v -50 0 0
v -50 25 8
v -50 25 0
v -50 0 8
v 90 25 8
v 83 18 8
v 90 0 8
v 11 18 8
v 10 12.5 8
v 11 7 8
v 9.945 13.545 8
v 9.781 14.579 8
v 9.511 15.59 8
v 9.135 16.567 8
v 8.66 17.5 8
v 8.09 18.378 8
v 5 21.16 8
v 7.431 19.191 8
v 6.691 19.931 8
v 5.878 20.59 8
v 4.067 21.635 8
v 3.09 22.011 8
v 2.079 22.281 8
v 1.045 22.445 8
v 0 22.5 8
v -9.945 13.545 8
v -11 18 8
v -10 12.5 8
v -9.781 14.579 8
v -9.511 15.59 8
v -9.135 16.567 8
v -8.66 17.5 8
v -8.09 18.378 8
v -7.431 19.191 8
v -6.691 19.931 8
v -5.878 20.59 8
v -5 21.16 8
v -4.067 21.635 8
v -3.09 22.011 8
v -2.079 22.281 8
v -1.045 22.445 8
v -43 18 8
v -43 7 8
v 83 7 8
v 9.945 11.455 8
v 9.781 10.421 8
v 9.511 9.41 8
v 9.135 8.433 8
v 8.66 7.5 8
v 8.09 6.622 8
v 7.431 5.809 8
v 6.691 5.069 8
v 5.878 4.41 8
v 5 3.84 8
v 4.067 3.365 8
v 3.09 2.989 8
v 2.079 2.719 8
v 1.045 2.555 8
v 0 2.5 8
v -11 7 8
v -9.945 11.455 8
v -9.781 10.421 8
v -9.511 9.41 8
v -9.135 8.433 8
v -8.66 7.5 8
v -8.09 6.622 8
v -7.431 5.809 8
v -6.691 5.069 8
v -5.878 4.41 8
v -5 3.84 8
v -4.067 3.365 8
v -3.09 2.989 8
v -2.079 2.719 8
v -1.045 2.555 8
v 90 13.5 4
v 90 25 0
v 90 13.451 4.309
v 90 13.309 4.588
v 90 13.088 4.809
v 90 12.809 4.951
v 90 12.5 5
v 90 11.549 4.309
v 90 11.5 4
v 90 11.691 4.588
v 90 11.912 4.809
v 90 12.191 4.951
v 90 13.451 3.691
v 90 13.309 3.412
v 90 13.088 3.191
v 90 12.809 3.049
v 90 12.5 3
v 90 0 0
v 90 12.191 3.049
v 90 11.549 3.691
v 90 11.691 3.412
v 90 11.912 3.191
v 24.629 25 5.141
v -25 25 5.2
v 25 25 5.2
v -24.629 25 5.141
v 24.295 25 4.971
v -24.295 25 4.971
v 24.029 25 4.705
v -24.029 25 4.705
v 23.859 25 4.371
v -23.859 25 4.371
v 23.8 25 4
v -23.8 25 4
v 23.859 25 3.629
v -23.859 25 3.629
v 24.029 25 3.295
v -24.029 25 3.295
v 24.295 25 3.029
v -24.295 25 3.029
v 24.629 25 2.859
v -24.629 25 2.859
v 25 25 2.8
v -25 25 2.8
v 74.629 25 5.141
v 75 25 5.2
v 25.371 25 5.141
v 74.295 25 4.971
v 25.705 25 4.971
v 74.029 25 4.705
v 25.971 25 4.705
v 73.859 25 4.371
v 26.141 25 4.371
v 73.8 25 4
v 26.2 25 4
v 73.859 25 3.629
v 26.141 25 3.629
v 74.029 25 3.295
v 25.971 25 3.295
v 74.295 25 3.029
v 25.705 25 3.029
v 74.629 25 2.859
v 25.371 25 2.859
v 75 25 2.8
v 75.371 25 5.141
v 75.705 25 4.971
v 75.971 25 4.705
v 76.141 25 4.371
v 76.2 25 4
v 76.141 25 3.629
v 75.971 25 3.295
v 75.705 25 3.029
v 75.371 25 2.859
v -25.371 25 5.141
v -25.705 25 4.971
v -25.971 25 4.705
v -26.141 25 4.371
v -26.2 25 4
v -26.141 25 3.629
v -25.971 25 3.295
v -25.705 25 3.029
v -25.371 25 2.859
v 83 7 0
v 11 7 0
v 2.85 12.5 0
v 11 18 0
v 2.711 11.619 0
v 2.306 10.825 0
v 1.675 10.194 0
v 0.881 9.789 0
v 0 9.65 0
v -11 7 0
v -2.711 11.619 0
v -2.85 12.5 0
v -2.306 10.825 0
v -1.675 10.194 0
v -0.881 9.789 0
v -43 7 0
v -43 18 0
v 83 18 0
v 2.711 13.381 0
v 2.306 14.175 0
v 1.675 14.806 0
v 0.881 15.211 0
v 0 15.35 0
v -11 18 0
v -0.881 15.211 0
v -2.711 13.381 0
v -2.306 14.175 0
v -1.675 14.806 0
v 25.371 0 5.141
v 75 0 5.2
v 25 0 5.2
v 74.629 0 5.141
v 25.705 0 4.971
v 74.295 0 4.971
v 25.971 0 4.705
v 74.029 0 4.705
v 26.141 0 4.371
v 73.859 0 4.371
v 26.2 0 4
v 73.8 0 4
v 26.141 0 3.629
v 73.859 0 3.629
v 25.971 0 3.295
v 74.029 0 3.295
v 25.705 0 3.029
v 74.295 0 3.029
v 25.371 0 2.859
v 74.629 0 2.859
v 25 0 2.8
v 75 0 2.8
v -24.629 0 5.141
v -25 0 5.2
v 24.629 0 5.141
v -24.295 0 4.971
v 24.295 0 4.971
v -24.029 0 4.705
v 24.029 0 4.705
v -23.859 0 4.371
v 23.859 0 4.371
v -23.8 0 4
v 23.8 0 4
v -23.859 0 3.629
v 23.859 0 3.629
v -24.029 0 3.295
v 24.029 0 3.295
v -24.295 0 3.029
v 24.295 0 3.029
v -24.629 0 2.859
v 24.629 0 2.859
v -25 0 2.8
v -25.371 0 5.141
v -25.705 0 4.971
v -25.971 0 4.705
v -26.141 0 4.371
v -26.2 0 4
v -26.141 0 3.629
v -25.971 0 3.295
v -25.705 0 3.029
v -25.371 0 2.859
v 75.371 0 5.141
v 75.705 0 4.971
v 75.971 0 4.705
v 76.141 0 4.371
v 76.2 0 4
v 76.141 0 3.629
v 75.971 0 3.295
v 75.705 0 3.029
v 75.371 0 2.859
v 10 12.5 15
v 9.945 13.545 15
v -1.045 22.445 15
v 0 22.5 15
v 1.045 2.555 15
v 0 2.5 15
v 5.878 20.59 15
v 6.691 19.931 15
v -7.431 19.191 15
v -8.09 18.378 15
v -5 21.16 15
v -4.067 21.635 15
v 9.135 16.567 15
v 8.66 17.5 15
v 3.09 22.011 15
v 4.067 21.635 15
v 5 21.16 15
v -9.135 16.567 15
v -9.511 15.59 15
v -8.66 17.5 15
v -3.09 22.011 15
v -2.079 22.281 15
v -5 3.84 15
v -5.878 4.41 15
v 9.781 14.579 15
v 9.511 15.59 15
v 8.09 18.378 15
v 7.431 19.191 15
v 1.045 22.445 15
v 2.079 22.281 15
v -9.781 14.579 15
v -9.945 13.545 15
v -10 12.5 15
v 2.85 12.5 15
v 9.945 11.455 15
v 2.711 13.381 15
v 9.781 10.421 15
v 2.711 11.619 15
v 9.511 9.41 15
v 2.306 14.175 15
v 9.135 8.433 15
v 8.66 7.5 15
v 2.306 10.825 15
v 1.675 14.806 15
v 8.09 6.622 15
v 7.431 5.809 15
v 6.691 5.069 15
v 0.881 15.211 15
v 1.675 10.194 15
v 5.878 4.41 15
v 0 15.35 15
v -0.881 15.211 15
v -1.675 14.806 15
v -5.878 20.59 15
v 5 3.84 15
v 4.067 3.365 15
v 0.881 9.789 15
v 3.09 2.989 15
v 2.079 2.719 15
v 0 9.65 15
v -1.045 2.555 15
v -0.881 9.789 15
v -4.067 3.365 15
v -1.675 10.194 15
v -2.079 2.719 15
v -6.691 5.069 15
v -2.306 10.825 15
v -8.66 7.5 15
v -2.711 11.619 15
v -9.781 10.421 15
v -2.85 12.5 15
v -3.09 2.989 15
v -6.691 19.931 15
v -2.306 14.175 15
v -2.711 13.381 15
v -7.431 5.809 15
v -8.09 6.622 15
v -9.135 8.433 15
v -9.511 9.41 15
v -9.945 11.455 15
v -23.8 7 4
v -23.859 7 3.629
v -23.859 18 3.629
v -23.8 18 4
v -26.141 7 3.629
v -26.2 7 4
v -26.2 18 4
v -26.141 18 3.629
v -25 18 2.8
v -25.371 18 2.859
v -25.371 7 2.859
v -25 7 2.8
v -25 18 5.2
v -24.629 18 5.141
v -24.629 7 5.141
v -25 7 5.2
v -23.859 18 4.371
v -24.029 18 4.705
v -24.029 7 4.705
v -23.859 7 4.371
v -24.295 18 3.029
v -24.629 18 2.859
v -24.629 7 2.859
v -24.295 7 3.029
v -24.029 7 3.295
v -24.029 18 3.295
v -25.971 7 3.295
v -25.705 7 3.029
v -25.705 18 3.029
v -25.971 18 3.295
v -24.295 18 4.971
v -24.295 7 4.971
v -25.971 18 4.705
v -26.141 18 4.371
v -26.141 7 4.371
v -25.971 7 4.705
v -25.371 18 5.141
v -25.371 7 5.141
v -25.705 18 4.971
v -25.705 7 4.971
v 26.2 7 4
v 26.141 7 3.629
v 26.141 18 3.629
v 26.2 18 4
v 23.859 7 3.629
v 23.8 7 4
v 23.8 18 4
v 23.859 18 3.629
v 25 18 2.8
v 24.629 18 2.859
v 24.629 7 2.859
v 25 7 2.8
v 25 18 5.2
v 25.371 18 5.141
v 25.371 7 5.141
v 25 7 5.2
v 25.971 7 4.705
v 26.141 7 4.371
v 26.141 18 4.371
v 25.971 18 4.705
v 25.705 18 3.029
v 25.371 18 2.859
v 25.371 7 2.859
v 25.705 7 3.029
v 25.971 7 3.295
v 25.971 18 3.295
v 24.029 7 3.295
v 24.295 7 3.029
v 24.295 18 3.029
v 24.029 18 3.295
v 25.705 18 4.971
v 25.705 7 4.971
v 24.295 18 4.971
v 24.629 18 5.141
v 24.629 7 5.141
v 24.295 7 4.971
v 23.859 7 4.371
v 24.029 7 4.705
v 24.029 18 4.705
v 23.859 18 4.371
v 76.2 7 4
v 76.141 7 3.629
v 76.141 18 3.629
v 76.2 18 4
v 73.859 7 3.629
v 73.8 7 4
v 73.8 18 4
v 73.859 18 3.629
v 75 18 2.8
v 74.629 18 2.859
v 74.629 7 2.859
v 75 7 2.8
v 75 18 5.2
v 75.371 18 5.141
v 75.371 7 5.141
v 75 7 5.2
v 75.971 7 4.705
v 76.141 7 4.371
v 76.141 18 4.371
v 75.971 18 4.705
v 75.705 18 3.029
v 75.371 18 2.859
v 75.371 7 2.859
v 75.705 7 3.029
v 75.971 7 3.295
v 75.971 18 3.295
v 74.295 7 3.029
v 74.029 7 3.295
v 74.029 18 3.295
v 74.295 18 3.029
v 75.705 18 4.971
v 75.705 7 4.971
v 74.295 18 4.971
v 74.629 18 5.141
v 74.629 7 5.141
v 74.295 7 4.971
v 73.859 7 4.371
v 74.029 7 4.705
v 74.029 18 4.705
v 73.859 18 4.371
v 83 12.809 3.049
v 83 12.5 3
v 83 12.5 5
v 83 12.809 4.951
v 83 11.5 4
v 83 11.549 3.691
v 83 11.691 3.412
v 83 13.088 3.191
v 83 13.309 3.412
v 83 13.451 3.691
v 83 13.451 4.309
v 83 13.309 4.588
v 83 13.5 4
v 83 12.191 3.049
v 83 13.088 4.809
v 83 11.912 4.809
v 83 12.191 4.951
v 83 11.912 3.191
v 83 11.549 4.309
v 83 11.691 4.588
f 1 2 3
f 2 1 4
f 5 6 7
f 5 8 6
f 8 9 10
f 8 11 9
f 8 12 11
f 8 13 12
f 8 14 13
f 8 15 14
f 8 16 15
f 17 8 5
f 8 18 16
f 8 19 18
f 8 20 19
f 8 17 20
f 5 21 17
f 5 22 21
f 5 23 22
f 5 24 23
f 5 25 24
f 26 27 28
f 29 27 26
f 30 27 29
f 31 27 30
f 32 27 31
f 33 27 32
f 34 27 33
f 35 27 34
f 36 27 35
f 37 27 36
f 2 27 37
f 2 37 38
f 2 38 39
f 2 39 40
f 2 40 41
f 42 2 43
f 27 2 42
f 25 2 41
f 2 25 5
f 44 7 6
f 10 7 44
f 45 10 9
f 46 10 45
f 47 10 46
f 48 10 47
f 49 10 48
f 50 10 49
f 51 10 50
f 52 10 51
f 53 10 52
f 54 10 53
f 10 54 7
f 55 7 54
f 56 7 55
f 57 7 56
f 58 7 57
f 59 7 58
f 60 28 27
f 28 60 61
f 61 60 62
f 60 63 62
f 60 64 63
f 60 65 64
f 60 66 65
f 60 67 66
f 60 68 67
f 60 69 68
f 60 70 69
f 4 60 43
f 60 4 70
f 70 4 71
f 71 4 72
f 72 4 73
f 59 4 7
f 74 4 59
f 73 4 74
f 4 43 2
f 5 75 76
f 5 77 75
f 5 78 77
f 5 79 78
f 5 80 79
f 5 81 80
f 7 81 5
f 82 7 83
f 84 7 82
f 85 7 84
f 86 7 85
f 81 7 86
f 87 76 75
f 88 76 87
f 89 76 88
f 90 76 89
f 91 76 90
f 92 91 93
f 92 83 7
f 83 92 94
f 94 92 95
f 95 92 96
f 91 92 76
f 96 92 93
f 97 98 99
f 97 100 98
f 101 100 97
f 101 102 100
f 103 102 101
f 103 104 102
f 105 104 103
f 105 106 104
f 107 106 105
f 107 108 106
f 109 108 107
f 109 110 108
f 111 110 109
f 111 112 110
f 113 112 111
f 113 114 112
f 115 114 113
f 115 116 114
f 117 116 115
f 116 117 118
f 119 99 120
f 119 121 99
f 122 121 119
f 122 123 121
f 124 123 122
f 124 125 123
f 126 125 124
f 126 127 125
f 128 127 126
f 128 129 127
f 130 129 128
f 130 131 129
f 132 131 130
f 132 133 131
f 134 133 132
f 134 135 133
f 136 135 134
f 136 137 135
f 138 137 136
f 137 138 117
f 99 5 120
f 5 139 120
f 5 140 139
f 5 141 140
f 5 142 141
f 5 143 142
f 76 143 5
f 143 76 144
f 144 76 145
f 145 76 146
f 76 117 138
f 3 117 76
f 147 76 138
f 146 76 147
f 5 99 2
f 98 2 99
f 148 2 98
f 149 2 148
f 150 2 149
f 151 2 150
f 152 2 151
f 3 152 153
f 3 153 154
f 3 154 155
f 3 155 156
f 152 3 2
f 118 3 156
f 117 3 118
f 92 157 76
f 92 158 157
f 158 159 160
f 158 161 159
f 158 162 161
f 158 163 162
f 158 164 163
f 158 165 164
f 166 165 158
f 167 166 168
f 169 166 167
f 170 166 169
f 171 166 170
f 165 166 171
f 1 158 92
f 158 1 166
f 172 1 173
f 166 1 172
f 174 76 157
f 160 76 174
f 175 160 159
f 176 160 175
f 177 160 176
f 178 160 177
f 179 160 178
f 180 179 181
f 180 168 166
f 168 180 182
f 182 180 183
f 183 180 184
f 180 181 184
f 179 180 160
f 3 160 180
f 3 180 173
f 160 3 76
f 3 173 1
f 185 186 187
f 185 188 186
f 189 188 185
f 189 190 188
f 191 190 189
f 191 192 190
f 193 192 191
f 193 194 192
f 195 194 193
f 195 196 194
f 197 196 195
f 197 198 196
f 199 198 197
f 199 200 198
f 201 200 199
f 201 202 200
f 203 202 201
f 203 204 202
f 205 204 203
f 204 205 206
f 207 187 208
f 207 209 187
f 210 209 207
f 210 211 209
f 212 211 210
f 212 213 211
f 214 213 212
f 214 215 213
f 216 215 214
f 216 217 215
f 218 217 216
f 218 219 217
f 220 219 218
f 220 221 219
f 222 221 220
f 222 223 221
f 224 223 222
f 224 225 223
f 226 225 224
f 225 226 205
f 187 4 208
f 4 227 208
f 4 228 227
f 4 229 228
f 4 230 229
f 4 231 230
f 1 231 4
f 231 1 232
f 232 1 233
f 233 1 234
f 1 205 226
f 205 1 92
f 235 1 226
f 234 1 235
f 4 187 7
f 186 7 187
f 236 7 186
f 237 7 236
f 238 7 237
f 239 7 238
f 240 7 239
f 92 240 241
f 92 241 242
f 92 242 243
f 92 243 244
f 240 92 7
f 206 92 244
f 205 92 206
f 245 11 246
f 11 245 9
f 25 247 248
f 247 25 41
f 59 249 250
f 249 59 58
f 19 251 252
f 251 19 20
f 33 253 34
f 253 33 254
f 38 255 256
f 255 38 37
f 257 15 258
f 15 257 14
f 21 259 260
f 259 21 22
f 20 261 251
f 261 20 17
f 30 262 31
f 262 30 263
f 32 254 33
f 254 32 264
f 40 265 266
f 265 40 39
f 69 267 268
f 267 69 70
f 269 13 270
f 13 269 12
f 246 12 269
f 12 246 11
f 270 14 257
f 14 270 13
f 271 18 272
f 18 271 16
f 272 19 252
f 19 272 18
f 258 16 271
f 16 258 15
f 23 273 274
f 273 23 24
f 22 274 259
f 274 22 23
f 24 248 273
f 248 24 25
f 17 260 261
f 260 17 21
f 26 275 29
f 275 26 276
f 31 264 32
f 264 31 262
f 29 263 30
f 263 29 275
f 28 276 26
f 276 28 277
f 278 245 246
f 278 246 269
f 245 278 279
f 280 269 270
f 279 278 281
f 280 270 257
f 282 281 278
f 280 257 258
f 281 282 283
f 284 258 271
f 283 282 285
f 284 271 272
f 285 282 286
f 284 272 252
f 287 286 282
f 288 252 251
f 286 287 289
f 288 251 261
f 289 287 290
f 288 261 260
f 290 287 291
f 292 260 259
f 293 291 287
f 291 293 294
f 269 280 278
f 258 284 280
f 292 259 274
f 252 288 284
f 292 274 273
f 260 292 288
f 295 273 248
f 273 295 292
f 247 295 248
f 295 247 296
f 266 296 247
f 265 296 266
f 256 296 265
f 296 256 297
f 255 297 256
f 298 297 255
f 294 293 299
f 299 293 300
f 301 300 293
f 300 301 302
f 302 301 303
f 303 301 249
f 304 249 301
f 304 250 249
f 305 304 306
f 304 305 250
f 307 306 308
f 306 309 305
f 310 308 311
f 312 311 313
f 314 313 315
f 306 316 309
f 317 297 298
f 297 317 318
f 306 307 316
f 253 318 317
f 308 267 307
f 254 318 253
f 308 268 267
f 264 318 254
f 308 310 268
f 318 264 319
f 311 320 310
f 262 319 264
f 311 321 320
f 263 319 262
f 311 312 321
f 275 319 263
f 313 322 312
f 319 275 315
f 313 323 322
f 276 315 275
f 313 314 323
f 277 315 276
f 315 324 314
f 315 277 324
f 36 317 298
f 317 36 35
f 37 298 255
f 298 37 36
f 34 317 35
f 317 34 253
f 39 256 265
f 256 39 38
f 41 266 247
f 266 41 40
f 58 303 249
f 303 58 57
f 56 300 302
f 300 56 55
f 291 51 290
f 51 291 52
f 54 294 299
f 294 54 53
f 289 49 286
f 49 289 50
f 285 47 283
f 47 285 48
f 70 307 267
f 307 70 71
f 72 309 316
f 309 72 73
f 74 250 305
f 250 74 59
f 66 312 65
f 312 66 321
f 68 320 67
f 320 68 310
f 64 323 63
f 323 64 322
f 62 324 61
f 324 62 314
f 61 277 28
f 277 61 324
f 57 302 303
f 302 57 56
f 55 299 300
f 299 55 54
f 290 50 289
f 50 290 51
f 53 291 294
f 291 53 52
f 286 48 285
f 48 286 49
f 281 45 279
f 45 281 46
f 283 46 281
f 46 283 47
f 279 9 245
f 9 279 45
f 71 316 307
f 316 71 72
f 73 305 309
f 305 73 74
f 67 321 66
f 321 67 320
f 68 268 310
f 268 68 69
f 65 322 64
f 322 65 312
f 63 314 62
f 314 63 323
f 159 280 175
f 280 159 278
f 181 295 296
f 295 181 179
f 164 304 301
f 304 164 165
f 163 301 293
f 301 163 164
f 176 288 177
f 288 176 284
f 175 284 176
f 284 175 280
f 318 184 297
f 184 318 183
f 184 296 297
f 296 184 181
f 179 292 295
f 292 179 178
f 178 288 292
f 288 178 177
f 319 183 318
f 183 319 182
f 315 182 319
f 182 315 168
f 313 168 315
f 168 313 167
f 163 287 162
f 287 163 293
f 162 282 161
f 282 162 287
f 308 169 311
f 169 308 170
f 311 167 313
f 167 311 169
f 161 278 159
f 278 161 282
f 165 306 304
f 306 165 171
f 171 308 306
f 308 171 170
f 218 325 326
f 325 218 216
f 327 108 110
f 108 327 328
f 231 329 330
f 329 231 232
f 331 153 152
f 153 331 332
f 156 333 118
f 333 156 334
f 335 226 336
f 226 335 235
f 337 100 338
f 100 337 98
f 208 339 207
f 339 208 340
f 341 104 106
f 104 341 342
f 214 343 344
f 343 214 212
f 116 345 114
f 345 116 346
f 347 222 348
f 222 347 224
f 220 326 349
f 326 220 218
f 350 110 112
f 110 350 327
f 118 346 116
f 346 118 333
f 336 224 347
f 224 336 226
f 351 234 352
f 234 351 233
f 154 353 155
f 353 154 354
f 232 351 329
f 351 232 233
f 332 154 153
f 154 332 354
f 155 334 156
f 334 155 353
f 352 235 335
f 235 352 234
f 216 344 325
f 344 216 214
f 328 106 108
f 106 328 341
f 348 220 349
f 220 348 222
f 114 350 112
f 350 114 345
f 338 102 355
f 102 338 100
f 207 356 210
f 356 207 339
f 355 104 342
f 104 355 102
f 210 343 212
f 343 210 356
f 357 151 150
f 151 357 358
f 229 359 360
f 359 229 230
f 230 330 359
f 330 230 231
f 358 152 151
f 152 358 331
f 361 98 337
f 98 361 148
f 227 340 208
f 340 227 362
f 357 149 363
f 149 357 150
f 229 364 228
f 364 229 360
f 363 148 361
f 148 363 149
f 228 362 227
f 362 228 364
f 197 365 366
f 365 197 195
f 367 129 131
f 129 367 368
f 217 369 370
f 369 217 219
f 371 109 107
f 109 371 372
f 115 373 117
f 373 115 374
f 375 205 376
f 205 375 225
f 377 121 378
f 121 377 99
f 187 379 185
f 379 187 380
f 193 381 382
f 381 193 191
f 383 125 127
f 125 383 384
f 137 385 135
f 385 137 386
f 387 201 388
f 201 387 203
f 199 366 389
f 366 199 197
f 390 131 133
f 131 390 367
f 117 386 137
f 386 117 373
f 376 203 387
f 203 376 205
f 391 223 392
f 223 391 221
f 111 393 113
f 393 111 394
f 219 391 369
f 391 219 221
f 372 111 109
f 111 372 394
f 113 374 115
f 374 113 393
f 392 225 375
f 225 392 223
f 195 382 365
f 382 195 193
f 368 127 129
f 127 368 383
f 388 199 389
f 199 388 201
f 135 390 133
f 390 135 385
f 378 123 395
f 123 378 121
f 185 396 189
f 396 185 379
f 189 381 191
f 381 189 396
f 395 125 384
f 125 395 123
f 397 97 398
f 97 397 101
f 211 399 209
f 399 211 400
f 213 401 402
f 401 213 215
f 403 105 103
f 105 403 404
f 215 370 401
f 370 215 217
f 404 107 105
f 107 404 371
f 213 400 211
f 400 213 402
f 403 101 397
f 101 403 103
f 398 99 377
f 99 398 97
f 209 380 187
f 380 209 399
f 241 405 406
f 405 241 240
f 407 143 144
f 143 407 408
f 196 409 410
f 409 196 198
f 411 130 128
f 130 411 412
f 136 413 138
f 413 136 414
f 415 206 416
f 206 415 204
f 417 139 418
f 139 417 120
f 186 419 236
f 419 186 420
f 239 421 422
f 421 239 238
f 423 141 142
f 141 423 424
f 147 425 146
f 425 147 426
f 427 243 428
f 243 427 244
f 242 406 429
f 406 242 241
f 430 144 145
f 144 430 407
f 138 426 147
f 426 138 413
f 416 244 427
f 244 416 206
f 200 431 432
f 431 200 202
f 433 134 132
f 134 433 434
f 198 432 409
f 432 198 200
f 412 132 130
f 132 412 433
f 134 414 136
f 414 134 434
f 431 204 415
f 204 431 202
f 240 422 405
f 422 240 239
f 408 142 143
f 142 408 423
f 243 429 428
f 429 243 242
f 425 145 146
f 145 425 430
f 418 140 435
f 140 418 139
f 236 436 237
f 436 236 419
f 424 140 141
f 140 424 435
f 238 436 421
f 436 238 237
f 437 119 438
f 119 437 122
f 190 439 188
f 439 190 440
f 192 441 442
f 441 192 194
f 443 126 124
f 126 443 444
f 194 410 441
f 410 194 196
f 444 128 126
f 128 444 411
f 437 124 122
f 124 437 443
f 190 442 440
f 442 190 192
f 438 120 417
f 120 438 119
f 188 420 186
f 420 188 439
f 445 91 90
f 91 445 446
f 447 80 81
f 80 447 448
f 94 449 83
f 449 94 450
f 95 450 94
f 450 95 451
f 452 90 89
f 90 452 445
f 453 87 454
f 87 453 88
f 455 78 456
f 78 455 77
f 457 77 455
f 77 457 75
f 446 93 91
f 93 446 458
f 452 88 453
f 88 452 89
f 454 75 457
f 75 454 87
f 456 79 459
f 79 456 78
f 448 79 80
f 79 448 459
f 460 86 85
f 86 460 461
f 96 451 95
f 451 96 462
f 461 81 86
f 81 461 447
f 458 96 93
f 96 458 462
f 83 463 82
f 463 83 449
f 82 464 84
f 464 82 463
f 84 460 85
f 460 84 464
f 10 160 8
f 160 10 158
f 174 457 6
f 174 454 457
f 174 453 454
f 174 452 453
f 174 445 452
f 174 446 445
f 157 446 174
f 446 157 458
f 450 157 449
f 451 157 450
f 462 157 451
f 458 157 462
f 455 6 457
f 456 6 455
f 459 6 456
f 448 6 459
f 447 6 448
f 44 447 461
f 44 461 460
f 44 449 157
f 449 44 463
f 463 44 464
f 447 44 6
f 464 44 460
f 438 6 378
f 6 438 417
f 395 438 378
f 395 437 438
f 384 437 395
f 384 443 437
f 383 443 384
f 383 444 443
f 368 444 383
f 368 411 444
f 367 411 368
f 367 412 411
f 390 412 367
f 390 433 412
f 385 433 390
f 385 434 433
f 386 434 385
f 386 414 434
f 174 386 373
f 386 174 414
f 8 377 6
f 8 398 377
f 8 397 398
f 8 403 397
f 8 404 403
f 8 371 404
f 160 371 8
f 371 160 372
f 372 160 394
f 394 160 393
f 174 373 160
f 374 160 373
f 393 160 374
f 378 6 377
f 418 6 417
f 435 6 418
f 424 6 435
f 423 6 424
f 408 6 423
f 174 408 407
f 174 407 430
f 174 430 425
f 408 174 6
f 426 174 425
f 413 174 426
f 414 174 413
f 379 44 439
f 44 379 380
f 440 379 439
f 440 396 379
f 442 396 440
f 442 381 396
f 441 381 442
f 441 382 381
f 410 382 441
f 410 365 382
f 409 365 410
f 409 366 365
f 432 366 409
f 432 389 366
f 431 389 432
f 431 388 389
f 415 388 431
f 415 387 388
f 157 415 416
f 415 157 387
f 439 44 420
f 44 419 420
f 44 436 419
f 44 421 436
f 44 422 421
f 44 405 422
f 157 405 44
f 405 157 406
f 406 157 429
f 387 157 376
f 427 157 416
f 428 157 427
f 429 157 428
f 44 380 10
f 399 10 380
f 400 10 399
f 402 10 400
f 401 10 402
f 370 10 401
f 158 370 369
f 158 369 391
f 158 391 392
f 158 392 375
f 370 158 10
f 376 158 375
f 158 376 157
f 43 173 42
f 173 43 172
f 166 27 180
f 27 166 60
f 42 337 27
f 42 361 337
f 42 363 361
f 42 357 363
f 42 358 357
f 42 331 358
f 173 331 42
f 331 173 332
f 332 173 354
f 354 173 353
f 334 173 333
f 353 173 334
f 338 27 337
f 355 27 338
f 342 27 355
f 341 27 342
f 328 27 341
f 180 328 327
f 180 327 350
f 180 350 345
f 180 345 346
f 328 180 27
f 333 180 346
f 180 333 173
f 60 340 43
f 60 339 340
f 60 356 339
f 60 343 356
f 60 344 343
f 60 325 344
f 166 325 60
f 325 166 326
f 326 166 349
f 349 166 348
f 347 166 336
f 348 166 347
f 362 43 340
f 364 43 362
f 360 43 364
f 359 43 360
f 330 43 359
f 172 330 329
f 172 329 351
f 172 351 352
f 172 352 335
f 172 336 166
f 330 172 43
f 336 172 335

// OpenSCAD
difference(){
union(){
translate([-50,0,0])cube([140,25,8]);
translate([0,12.5,0])cylinder(d=20,h=15,$fn=60);
}    
translate([0,12.5,0])cylinder(d=5.8,h=15,$fn=20);
translate([-25,-1,4])rotate([-90,0,0])
    cylinder(d=2.4,h=50,$fn=20);
translate([25,-1,4])rotate([-90,0,0])
    cylinder(d=2.4,h=50,$fn=20);
translate([75,-1,4])rotate([-90,0,0])
    cylinder(d=2.4,h=50,$fn=20);
translate([50,12.5,4])rotate([0,90,0])
    cylinder(d=2,h=50,$fn=20);
translate([11,7,-1])cube([72,11,12]);
translate([-43,7,-1])cube([32,11,12]);
}
